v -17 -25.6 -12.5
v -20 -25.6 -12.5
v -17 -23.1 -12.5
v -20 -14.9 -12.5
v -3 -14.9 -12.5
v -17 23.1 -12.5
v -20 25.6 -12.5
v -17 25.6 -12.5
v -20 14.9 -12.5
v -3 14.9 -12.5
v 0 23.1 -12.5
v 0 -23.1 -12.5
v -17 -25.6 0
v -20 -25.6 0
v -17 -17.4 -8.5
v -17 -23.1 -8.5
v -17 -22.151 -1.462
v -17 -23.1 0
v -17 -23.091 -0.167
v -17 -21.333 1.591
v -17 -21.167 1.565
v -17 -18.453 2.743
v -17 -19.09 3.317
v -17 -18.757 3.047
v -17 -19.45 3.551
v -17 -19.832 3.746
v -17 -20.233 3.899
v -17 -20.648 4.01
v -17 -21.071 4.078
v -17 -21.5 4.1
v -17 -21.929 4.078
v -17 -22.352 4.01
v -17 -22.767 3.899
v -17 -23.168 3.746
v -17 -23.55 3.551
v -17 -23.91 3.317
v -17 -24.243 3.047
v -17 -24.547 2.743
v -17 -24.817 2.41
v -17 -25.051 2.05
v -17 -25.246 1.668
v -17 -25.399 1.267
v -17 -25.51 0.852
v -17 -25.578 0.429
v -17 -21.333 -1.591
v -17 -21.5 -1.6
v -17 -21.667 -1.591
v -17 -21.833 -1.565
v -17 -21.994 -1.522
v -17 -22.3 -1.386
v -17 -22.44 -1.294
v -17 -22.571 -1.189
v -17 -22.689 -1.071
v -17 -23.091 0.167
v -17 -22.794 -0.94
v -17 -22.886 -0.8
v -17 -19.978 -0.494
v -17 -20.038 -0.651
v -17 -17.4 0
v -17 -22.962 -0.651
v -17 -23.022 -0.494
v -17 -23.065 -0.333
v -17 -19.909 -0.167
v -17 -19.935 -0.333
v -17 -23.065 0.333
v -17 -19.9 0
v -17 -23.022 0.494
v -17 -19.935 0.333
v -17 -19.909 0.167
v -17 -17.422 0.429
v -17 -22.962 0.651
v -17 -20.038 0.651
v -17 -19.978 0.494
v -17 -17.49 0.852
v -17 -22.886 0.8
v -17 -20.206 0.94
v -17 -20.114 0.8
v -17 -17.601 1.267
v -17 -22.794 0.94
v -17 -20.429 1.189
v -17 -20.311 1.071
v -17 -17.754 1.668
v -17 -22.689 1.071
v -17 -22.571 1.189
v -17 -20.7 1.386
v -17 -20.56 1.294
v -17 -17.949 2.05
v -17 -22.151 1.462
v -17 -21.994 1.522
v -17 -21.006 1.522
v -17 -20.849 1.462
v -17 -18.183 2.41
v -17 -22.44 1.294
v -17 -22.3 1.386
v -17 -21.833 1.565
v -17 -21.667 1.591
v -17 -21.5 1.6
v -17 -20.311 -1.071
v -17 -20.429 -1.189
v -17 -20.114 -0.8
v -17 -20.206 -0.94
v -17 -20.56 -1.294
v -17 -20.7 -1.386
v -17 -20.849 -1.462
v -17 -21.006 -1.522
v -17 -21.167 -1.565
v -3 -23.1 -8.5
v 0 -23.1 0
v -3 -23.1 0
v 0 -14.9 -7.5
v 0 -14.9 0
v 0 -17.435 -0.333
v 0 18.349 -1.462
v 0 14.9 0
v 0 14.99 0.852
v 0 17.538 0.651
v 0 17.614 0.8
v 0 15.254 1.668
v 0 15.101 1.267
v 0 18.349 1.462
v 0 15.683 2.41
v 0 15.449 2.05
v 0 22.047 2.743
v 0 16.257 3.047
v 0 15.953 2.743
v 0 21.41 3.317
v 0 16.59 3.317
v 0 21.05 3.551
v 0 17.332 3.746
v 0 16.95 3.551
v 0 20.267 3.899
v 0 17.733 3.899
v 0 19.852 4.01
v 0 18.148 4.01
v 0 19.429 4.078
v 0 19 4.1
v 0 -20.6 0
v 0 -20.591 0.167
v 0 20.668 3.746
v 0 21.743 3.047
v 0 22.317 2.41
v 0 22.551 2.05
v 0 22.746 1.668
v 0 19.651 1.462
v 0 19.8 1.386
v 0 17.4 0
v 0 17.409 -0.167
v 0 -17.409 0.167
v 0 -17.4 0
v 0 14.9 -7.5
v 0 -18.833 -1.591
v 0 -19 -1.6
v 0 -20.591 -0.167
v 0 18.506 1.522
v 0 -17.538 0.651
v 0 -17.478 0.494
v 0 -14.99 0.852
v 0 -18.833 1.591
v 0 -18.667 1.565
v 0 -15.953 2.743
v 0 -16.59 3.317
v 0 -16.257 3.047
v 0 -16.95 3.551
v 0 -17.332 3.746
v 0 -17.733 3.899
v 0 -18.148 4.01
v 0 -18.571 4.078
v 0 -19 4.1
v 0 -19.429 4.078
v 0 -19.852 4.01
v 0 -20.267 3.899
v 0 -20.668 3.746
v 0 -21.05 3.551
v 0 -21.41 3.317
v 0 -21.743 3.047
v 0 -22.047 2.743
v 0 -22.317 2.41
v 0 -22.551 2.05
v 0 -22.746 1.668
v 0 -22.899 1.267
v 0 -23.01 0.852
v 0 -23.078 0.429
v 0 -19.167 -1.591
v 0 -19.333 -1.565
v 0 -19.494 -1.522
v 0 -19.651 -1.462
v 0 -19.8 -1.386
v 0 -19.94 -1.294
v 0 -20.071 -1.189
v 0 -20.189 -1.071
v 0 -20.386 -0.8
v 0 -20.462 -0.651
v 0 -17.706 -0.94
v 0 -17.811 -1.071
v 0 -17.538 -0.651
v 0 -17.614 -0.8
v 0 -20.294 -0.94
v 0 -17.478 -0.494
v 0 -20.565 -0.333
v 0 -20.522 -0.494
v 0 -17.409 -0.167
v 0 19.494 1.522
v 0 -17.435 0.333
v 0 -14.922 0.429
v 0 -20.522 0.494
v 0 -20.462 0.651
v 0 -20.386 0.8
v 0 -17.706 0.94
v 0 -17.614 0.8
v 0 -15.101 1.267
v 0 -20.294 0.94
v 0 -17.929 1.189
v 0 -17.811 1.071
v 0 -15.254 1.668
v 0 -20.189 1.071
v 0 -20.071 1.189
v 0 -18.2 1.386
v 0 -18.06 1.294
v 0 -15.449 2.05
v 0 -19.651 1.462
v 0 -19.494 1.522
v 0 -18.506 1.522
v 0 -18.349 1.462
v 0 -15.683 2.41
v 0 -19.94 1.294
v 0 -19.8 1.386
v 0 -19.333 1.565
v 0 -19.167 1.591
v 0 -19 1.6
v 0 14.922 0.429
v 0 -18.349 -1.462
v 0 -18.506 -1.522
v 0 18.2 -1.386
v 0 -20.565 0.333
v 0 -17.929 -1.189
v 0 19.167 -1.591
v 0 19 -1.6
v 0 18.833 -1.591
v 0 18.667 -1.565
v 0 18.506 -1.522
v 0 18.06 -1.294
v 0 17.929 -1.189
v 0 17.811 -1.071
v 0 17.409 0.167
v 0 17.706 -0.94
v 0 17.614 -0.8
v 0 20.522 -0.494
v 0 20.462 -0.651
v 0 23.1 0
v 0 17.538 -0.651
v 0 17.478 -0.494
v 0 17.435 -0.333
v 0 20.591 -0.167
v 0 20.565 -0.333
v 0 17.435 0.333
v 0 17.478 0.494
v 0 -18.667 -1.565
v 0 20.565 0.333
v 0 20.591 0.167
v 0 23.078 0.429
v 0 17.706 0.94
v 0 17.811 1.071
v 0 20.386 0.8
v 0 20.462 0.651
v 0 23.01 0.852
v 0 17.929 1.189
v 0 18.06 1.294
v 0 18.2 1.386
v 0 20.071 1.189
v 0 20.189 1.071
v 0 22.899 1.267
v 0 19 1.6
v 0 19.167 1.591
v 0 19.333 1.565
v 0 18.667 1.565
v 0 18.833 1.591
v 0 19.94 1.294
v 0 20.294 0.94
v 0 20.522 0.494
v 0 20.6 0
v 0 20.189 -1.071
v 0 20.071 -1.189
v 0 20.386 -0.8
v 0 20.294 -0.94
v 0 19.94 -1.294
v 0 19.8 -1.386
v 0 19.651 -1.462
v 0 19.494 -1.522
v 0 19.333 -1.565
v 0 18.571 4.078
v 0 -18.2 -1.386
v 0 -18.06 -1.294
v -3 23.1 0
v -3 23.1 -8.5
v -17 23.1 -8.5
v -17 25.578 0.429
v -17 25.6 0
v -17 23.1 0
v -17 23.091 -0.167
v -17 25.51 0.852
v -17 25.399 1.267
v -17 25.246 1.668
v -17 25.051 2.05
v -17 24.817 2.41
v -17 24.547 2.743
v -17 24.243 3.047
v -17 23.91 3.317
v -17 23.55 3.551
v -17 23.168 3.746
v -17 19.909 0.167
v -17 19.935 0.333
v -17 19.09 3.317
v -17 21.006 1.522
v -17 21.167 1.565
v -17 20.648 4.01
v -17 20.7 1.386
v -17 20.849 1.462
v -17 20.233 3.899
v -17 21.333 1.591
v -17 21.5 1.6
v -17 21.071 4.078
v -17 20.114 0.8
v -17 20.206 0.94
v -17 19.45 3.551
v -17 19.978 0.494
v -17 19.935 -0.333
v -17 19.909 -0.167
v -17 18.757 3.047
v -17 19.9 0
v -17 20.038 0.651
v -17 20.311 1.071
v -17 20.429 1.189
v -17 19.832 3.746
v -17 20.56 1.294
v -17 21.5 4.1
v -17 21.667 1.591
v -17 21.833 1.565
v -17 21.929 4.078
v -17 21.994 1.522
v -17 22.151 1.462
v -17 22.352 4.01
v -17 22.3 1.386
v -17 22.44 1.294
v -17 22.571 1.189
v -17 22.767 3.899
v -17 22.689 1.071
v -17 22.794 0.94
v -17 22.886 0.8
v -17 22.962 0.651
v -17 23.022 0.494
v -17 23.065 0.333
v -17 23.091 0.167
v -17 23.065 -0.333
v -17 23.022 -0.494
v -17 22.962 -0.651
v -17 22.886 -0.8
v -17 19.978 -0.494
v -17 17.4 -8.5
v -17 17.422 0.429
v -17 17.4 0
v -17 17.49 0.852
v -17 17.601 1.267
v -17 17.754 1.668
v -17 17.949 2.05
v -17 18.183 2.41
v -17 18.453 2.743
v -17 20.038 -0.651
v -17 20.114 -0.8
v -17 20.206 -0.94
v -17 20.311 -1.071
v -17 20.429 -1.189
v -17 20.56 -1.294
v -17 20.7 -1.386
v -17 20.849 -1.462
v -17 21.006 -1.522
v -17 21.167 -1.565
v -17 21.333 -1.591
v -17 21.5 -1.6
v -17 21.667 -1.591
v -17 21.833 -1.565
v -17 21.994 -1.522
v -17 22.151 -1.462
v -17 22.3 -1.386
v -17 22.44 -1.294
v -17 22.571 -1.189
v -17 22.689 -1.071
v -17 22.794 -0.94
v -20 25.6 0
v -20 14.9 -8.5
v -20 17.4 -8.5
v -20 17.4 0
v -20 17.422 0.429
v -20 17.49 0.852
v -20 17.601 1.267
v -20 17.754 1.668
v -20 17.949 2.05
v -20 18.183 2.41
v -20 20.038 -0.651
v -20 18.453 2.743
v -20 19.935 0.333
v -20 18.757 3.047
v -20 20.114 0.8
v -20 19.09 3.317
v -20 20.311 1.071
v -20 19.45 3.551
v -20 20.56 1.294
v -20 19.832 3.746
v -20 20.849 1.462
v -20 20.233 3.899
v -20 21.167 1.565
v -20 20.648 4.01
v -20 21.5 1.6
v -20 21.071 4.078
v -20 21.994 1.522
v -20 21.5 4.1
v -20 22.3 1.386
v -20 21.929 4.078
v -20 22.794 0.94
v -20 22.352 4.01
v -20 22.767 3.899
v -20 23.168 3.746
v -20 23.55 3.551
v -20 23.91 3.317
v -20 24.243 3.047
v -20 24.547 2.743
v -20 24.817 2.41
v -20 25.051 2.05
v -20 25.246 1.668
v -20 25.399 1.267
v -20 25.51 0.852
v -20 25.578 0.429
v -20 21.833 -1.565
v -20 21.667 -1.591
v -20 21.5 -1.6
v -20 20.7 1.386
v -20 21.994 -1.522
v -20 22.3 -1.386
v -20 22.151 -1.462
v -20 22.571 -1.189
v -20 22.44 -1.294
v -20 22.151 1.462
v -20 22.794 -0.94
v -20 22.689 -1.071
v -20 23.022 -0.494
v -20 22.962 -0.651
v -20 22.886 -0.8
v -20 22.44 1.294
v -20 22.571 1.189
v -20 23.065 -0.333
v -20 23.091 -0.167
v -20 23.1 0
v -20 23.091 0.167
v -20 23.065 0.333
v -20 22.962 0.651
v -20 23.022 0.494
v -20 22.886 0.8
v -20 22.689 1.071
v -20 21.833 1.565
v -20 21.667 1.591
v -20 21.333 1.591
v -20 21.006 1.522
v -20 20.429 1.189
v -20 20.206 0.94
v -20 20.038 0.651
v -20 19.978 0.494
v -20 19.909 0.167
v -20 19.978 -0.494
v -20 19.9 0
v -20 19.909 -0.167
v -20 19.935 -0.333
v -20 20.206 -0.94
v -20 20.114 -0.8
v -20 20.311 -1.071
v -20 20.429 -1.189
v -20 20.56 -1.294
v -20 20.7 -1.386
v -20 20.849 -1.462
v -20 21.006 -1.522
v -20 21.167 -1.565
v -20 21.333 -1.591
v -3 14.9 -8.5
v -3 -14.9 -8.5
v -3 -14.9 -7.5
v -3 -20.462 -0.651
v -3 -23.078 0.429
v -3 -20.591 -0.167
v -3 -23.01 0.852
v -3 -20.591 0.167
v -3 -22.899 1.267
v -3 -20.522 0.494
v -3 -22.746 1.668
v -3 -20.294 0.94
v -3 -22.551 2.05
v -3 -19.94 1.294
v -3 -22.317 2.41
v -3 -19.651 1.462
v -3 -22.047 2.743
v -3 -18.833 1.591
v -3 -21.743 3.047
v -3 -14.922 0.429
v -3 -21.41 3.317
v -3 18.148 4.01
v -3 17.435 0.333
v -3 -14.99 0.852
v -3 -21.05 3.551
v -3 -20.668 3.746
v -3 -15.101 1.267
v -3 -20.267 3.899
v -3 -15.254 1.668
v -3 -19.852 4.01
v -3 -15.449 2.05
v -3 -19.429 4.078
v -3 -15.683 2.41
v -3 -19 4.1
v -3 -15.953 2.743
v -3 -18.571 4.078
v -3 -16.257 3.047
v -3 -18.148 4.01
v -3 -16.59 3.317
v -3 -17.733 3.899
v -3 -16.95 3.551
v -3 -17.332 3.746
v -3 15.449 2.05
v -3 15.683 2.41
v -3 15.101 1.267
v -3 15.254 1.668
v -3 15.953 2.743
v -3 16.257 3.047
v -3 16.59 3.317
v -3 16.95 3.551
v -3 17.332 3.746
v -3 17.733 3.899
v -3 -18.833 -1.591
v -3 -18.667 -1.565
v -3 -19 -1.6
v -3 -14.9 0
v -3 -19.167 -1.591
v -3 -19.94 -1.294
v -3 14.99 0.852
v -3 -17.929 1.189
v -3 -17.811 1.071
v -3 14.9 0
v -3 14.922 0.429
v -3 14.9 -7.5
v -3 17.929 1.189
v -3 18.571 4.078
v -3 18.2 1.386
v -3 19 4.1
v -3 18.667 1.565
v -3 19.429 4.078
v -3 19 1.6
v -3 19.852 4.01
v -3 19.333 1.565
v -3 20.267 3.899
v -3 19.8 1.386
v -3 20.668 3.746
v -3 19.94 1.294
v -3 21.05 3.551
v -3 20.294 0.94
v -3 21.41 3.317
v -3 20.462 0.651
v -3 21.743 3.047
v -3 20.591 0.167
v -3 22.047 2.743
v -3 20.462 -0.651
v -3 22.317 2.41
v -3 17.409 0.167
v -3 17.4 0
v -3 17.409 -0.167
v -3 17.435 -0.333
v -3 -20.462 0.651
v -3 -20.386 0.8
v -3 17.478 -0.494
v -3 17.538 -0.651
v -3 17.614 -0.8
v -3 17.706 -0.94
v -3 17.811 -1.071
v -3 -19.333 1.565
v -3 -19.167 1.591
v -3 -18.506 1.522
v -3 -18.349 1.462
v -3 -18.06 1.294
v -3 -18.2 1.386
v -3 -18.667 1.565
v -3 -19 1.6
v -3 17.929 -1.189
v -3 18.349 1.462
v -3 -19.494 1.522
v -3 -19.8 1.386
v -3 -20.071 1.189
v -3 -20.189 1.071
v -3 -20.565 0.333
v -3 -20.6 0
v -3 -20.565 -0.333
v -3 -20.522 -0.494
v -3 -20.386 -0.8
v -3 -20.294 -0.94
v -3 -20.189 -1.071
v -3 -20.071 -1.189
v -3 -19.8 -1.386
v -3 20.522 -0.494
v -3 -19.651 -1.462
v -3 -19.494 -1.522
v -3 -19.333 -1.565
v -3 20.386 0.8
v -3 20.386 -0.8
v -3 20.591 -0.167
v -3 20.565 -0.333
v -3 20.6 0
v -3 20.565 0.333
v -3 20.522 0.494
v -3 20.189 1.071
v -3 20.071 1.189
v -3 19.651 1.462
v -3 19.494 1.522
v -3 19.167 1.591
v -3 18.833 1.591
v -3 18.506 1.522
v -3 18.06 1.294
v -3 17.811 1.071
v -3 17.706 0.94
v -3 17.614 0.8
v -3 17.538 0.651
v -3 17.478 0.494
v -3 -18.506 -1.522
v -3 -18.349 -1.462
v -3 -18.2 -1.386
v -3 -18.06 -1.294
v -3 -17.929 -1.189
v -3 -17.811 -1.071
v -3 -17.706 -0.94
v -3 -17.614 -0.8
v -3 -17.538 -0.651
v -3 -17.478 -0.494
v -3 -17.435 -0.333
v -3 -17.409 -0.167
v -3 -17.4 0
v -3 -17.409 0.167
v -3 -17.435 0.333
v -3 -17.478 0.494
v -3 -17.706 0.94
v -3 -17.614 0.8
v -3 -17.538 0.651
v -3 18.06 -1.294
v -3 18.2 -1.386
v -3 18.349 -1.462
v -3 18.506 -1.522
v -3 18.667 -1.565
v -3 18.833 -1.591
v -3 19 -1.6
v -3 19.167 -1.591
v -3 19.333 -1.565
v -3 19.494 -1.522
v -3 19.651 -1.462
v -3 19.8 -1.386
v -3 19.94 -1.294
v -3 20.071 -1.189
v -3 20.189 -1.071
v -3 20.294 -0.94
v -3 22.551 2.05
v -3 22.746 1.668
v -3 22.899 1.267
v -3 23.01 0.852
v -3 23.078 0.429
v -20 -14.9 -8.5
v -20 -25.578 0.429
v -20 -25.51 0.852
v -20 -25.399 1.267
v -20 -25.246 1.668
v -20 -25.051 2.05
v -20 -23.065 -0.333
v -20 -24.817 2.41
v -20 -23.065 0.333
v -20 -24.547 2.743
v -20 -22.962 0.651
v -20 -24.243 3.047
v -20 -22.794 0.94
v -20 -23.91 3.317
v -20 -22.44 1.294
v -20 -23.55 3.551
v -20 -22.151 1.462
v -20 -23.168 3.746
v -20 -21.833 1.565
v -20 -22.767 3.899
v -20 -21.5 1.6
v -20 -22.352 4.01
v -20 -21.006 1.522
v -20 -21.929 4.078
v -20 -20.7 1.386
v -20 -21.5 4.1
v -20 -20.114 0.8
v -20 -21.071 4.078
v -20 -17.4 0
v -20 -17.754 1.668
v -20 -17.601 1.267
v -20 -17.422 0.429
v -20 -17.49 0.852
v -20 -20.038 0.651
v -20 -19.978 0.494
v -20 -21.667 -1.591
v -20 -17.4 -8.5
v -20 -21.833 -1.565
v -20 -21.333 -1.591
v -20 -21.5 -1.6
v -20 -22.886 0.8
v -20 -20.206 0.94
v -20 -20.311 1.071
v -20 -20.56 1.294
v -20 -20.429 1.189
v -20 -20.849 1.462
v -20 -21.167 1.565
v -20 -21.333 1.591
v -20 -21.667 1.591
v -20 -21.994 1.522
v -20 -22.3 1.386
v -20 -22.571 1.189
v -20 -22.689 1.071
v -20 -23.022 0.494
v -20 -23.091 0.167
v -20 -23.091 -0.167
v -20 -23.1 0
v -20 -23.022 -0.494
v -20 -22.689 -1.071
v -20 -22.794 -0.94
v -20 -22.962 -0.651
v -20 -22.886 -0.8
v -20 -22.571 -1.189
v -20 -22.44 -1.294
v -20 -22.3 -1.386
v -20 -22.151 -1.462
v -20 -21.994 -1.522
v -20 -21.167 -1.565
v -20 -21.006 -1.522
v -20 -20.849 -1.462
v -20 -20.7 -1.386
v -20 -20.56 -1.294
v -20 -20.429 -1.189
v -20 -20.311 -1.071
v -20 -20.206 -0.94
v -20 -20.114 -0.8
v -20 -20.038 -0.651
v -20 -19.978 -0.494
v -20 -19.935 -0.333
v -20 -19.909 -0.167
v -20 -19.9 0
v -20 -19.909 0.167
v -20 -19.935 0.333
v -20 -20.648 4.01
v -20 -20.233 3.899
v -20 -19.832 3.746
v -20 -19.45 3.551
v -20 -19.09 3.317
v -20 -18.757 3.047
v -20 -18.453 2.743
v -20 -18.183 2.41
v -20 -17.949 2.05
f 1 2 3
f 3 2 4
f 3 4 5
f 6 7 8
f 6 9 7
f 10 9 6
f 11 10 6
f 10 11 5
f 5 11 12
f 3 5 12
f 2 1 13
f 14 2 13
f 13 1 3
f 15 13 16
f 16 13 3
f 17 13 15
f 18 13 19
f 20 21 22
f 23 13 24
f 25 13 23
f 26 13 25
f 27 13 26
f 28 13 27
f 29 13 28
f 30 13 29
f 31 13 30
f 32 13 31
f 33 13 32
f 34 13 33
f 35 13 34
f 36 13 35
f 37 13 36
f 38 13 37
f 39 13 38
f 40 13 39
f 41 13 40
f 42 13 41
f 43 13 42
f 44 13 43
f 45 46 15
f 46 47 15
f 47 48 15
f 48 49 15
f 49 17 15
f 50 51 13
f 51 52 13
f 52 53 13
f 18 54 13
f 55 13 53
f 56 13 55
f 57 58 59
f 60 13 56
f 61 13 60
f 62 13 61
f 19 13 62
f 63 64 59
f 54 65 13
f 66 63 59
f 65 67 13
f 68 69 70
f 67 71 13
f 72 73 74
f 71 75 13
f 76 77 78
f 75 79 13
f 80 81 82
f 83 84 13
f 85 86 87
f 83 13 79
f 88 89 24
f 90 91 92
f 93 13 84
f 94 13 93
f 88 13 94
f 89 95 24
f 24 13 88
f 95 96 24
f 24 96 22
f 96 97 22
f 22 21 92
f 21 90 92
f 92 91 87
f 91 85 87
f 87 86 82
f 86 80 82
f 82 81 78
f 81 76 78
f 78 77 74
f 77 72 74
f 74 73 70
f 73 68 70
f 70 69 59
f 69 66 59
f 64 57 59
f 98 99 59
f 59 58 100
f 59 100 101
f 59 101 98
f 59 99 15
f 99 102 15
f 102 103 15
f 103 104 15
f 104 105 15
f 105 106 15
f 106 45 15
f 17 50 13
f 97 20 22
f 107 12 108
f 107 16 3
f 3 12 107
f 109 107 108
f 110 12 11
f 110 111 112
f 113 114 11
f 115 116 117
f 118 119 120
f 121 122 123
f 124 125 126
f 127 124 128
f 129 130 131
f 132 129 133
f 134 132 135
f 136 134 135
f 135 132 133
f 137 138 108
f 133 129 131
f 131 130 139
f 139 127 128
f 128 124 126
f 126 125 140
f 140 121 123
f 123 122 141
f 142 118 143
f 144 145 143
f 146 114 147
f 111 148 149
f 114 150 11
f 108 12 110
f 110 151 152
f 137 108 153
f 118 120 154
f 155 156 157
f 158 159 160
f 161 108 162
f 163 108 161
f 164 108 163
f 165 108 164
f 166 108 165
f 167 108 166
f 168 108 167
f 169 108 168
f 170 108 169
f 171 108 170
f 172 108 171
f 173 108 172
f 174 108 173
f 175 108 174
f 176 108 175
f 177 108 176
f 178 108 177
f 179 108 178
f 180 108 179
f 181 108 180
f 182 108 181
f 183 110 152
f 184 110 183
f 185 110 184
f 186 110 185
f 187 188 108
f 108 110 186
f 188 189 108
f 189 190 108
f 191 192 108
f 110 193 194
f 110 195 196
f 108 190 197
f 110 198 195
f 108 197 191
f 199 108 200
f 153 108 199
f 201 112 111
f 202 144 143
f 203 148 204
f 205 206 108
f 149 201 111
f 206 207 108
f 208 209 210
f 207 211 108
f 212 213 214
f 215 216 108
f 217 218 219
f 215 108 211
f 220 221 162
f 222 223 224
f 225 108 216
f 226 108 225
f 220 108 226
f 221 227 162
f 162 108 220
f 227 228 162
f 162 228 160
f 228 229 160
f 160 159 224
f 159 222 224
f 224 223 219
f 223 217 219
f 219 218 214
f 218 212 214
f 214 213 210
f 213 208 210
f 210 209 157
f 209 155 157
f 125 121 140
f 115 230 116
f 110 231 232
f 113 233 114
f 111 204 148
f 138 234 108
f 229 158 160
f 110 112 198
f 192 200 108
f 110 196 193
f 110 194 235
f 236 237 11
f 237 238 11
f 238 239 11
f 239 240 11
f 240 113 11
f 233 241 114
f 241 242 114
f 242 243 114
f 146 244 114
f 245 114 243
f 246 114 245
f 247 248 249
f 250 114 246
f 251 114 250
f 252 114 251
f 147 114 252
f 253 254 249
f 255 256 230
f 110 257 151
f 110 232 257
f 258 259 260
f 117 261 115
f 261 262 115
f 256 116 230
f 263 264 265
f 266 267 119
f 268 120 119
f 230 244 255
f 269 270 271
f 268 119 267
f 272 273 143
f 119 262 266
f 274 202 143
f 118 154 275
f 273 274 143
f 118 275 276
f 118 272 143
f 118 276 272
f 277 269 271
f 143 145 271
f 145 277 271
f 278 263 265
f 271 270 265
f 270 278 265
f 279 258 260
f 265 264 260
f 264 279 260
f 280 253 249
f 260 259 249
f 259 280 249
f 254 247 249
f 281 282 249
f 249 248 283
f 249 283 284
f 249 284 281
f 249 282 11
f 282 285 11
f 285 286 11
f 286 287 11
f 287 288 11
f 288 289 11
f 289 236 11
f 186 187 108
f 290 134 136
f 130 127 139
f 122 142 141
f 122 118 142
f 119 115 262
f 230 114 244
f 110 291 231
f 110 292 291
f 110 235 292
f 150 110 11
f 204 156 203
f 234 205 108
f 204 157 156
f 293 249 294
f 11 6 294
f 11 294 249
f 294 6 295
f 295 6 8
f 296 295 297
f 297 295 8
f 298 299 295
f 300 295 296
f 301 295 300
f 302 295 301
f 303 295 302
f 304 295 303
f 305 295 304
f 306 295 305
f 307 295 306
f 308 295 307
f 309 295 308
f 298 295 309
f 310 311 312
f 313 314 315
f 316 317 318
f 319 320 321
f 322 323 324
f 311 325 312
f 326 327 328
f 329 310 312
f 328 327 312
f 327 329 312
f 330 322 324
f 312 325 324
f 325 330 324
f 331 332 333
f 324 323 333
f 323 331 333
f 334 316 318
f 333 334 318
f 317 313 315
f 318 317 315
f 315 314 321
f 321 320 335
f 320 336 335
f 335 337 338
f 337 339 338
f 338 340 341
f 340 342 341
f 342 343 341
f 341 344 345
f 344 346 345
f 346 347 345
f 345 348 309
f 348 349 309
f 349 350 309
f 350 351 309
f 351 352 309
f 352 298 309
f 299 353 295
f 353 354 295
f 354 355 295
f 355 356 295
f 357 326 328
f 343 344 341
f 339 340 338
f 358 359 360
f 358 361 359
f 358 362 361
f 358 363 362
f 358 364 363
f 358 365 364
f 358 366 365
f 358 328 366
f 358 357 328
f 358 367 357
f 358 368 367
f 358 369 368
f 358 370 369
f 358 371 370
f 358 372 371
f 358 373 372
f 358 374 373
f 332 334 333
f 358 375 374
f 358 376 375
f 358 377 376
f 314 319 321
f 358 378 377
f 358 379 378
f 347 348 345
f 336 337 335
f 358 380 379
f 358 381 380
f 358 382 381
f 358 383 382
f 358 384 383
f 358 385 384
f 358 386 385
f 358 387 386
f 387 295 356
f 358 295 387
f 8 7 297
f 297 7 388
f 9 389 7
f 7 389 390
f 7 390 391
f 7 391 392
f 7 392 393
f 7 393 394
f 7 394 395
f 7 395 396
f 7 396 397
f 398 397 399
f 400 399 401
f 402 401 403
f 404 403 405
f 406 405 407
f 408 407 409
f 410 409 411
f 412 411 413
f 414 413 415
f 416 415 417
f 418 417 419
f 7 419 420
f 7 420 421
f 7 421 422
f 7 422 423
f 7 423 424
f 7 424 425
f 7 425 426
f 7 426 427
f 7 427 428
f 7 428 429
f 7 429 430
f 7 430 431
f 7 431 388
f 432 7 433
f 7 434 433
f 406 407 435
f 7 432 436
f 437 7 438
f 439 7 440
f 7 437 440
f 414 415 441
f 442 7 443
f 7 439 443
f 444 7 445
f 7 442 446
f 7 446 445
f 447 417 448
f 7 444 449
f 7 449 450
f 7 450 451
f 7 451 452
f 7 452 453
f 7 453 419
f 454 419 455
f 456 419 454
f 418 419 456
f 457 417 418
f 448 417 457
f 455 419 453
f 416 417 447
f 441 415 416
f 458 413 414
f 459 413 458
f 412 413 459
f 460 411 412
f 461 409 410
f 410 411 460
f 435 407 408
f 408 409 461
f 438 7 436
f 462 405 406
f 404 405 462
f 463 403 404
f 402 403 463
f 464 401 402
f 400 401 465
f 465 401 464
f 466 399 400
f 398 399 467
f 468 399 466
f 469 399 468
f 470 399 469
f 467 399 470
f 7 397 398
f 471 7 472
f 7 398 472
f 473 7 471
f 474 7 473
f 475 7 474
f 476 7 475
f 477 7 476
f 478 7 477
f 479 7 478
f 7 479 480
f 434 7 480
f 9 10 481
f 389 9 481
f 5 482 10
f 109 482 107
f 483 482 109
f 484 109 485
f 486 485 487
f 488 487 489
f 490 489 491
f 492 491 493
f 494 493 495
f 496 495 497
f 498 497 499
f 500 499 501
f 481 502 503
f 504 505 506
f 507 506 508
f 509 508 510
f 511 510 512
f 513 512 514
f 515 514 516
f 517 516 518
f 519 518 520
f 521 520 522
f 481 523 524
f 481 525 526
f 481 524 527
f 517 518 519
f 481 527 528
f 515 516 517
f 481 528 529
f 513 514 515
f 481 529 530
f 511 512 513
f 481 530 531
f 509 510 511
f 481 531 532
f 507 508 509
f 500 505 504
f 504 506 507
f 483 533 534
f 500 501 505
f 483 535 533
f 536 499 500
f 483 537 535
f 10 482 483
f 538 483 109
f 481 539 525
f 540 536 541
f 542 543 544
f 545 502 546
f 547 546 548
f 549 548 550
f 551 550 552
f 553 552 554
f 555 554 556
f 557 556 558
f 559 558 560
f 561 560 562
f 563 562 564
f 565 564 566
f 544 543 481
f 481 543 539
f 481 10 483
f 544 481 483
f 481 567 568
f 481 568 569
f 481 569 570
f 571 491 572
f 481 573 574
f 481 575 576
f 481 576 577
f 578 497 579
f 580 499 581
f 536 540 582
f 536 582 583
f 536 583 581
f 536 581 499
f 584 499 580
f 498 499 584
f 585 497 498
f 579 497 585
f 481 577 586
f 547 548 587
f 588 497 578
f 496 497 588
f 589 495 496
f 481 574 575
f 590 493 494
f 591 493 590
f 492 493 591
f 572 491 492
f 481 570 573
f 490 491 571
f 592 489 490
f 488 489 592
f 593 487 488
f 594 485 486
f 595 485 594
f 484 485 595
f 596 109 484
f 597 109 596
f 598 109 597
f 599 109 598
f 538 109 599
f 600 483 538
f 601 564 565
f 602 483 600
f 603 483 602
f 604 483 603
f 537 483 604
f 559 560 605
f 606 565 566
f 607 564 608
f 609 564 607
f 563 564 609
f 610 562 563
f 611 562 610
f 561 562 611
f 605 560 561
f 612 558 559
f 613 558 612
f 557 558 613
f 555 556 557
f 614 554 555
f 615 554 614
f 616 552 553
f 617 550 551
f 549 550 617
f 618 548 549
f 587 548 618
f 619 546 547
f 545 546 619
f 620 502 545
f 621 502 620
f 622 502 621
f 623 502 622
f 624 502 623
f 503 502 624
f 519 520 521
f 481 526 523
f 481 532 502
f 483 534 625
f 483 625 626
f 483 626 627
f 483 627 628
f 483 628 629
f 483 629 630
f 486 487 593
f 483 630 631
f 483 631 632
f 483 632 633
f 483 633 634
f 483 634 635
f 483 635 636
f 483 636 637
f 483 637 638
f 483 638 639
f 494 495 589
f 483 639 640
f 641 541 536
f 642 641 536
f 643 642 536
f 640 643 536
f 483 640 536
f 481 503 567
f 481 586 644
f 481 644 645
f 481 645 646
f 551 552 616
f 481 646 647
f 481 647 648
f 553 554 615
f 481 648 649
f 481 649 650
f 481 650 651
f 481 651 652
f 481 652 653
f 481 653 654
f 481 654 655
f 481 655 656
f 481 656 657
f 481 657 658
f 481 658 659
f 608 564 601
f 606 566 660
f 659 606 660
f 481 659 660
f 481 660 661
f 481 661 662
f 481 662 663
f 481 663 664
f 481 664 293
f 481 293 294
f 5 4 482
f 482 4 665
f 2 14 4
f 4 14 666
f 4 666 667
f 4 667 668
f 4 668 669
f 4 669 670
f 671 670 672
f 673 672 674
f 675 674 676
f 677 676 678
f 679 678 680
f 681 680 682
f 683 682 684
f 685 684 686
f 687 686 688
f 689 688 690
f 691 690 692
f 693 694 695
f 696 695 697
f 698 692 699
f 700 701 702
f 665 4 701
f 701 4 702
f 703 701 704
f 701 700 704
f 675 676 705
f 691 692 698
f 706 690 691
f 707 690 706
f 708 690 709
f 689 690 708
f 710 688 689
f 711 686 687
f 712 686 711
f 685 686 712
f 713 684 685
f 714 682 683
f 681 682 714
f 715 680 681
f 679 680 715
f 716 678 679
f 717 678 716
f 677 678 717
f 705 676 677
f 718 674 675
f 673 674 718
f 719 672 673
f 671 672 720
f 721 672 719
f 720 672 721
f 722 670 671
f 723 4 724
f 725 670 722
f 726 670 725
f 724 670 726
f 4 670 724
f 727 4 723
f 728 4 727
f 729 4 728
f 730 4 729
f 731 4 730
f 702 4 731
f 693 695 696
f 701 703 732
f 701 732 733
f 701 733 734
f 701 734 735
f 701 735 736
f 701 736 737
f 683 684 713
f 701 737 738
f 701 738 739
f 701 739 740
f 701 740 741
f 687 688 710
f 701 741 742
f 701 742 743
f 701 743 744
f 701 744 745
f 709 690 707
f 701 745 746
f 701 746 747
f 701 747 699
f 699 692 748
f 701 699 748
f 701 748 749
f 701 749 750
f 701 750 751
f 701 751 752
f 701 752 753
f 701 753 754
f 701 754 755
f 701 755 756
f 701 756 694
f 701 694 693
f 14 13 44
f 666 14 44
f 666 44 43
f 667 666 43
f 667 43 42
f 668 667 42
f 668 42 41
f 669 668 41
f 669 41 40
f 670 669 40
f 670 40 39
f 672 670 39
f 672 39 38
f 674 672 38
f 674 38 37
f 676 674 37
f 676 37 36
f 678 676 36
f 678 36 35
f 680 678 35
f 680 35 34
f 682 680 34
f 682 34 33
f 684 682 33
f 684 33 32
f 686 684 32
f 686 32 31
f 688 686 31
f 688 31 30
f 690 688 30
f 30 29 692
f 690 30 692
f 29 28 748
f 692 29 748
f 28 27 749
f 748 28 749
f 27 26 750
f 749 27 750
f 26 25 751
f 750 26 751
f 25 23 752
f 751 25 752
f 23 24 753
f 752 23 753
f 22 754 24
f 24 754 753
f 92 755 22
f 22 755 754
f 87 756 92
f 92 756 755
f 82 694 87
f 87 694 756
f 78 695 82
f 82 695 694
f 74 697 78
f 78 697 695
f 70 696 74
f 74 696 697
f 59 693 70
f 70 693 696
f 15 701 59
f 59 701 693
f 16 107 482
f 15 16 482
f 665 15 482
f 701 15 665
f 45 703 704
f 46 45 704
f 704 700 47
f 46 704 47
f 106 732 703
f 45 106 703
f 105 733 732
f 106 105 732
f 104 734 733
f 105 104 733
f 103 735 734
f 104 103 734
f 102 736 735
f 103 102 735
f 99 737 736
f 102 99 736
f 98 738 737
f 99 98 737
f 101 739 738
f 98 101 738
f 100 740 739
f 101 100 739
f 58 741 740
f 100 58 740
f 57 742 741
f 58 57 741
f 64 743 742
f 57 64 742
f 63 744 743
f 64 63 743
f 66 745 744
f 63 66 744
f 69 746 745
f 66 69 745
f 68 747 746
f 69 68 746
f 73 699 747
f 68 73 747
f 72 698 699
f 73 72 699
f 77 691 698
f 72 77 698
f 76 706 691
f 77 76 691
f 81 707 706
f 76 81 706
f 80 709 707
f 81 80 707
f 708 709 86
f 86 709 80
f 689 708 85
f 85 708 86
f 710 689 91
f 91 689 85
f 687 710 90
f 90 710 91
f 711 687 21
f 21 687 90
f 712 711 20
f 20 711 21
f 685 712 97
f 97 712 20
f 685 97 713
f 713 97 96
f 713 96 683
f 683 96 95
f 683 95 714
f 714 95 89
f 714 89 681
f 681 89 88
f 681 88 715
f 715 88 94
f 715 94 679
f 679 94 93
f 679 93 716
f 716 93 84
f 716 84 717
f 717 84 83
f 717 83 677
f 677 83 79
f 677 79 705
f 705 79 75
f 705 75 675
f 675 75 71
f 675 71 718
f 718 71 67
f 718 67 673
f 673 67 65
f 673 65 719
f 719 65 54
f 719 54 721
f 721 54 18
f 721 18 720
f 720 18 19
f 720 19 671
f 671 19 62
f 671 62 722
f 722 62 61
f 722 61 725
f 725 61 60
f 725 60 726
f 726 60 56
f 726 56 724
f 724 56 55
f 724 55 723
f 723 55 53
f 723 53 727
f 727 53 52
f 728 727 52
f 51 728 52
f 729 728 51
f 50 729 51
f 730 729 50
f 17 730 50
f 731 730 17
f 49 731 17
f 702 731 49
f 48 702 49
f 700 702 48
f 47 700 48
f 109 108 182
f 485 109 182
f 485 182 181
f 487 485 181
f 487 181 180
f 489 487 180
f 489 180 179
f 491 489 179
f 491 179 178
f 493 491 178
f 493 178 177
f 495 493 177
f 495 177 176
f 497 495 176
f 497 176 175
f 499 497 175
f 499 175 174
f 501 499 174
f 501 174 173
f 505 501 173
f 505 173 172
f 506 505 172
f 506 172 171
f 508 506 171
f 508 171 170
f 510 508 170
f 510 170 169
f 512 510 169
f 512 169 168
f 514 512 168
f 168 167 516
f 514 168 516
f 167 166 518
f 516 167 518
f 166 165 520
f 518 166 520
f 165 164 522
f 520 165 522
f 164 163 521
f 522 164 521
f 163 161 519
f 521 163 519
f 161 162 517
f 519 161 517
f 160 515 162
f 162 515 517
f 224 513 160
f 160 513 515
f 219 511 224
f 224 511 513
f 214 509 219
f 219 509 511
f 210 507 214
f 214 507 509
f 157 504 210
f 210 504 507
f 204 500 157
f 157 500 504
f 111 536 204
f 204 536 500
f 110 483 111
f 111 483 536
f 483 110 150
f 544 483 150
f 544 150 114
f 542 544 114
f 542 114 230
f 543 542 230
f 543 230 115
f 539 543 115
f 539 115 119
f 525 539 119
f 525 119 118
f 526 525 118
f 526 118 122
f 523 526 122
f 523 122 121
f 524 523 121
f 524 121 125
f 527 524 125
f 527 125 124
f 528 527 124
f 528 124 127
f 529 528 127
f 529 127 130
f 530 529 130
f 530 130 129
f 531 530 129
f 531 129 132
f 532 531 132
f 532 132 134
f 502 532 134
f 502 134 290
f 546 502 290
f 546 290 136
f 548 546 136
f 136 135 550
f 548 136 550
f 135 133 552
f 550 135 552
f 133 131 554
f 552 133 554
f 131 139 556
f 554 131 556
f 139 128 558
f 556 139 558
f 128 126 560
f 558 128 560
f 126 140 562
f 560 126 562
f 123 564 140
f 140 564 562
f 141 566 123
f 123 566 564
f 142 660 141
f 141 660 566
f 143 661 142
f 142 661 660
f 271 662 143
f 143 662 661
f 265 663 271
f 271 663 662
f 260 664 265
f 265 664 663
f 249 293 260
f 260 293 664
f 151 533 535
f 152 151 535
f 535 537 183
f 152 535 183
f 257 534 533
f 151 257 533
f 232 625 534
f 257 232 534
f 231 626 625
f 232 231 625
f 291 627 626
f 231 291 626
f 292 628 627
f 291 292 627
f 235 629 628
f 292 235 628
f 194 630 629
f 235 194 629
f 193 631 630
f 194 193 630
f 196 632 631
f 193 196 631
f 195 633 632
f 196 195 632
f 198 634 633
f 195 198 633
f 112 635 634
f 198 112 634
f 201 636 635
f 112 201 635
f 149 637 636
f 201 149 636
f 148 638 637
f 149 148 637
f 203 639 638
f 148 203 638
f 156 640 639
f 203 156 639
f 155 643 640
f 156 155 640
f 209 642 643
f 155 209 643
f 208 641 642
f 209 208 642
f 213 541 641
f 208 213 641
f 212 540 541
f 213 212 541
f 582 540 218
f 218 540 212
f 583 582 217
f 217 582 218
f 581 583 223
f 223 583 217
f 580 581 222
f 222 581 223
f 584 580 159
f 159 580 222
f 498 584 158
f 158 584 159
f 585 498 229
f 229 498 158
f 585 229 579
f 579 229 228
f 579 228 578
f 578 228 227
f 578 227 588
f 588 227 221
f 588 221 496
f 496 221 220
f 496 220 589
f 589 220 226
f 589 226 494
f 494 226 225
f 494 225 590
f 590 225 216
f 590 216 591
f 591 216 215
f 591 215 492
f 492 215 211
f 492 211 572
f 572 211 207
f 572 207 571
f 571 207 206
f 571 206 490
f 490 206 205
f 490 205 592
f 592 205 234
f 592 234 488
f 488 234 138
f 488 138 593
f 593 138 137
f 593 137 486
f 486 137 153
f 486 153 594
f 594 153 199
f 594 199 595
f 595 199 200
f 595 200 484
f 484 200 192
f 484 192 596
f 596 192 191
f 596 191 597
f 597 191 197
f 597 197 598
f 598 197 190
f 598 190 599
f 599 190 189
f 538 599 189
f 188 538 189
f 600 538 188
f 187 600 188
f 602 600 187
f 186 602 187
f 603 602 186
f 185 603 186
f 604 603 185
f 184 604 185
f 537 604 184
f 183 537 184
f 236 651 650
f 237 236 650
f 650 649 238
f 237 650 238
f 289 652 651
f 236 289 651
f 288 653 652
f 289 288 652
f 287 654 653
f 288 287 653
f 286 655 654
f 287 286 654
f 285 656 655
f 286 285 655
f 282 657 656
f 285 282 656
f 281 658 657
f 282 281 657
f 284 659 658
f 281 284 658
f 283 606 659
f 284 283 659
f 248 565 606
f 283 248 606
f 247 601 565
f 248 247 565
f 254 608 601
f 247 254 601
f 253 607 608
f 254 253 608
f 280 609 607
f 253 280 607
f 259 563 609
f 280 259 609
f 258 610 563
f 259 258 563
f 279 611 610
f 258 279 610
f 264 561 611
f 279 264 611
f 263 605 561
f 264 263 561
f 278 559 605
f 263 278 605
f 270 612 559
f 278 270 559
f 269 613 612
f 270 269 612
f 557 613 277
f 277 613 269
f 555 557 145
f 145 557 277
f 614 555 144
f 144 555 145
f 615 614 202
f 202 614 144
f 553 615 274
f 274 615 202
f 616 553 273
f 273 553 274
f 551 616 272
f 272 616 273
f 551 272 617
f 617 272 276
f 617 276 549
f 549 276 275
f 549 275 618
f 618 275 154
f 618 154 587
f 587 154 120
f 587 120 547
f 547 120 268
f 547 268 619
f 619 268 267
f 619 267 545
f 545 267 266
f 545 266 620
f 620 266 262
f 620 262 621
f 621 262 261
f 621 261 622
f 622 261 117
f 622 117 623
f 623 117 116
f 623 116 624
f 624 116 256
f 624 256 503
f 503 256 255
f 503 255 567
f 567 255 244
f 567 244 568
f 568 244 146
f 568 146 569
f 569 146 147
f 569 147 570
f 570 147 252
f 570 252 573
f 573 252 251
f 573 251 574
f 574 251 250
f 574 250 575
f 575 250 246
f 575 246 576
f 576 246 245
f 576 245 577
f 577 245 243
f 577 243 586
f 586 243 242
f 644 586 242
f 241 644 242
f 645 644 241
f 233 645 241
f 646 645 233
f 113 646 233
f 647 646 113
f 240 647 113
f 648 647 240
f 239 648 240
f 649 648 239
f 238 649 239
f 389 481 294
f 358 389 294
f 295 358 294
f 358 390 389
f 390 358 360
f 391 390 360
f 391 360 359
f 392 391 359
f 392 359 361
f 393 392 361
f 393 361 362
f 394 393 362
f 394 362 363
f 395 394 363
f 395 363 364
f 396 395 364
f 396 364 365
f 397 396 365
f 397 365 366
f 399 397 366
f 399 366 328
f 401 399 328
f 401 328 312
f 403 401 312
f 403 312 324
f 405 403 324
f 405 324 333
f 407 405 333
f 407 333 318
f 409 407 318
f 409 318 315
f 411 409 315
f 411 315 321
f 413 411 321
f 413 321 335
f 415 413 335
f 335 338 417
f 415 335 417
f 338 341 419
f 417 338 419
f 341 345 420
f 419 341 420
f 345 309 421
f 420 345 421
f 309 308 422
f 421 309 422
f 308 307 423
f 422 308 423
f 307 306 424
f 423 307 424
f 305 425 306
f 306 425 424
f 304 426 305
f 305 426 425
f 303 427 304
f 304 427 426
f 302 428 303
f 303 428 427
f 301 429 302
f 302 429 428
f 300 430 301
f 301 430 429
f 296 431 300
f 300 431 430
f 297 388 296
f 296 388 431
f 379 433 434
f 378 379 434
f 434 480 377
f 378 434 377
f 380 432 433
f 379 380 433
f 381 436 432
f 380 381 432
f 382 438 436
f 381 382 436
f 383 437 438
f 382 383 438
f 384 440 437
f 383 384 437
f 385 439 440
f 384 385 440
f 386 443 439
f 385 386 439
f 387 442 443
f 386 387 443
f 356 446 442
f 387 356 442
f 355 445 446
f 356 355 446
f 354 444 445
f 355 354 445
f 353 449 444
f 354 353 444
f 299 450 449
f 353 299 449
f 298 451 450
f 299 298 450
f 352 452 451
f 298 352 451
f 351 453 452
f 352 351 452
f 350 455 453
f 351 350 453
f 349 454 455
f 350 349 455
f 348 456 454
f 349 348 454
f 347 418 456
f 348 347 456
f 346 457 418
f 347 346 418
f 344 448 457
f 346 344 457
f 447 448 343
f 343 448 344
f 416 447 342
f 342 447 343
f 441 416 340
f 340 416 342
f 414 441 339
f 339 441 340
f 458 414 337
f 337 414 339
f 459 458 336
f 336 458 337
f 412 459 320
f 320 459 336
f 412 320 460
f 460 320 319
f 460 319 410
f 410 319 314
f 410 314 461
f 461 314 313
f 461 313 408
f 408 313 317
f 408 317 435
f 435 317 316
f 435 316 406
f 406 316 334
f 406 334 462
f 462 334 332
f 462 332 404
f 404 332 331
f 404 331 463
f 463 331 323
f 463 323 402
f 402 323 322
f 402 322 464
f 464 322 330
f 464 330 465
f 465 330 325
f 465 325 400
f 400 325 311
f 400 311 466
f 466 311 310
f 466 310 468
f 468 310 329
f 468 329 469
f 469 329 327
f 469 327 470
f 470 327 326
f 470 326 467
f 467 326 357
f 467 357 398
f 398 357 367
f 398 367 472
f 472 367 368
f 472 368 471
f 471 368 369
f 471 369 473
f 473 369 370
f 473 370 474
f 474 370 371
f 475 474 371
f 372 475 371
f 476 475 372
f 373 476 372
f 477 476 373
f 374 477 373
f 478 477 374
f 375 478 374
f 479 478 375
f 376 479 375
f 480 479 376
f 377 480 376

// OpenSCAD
$fn = 60;

screwDiameter = 3.2;
screwRadius = screwDiameter/2;

screwMountWall = 2.5;

screwMountRadius = screwRadius+screwMountWall;

mountPlateHeigh = 3;

totalHeight = 20;


// topPCB dimations
PCB_top_width = 43;
PCB_top_length = 42;

// bottomPCB dimations
PCB_bottom_width = 38;
PCB_bottom_length = 51;

// offset
offset = PCB_bottom_length-PCB_top_length;
offset = 0;
bottomOffset = 7;

bottomOffset = 10;



rotate([0,-90,0])
difference() {
	union() {
		translate([-bottomOffset-0.5,PCB_bottom_width/2,totalHeight/2])
		cube(size=[4,screwMountRadius*2,totalHeight],center=true);

		translate([-bottomOffset-0.5,-PCB_bottom_width/2,totalHeight/2])
		cube(size=[4,screwMountRadius*2,totalHeight],center=true);


		union() {
			hull() {
				translate([offset,PCB_top_width/2,totalHeight-mountPlateHeigh])
				cylinder(r=screwMountRadius,h=mountPlateHeigh);
				translate([-bottomOffset,PCB_top_width/2,mountPlateHeigh/2+(totalHeight-mountPlateHeigh)])
				cube(size=[5,screwMountRadius*2,mountPlateHeigh],center=true);	
			}

			hull() {
				translate([offset,-PCB_top_width/2,totalHeight-mountPlateHeigh])
				cylinder(r=screwMountRadius,h=mountPlateHeigh);
				translate([-bottomOffset,-PCB_top_width/2,mountPlateHeigh/2+(totalHeight-mountPlateHeigh)])
				cube(size=[5,screwMountRadius*2,mountPlateHeigh],center=true);
			}

			
				translate([-bottomOffset,PCB_top_width/2,mountPlateHeigh/2+(totalHeight-mountPlateHeigh)])
				cube(size=[5,screwMountRadius*2,mountPlateHeigh],center=true);
				translate([-bottomOffset,-PCB_top_width/2,mountPlateHeigh/2+(totalHeight-mountPlateHeigh)])
				cube(size=[5,screwMountRadius*2,mountPlateHeigh],center=true);	
			
		}


		union() {
			hull() {
				translate([-bottomOffset,PCB_bottom_width/2,mountPlateHeigh/2])
				cube(size=[5,screwMountRadius*2,mountPlateHeigh],center=true);
				translate([0,PCB_bottom_width/2,0])
				cylinder(r=screwMountRadius,h=mountPlateHeigh);
			}

			hull() {
				translate([-bottomOffset,-PCB_bottom_width/2,mountPlateHeigh/2])
				cube(size=[5,screwMountRadius*2,mountPlateHeigh],center=true);
				translate([0,-PCB_bottom_width/2,0])
				cylinder(r=screwMountRadius,h=mountPlateHeigh);
			}

			hull() {
				translate([-bottomOffset,PCB_bottom_width/2,mountPlateHeigh/2])
				cube(size=[5,screwMountRadius*2,mountPlateHeigh],center=true);
				translate([-bottomOffset,-PCB_bottom_width/2,mountPlateHeigh/2])
				cube(size=[5,screwMountRadius*2,mountPlateHeigh],center=true);
			}	
		}
	}




	union() {
		// bottom front screwholes
		translate([0,PCB_bottom_width/2,-0.5])
		cylinder(r=screwRadius,h=mountPlateHeigh+1);
		translate([0,-PCB_bottom_width/2,-0.5])
		cylinder(r=screwRadius,h=mountPlateHeigh+1);

		// top front screwholes
		translate([offset,0,totalHeight-mountPlateHeigh]) {
			translate([0,PCB_top_width/2,-0.5])
			cylinder(r=screwRadius,h=mountPlateHeigh+1);
			translate([0,-PCB_top_width/2,-0.5])
			cylinder(r=screwRadius,h=mountPlateHeigh+1);
		}
	}
}
